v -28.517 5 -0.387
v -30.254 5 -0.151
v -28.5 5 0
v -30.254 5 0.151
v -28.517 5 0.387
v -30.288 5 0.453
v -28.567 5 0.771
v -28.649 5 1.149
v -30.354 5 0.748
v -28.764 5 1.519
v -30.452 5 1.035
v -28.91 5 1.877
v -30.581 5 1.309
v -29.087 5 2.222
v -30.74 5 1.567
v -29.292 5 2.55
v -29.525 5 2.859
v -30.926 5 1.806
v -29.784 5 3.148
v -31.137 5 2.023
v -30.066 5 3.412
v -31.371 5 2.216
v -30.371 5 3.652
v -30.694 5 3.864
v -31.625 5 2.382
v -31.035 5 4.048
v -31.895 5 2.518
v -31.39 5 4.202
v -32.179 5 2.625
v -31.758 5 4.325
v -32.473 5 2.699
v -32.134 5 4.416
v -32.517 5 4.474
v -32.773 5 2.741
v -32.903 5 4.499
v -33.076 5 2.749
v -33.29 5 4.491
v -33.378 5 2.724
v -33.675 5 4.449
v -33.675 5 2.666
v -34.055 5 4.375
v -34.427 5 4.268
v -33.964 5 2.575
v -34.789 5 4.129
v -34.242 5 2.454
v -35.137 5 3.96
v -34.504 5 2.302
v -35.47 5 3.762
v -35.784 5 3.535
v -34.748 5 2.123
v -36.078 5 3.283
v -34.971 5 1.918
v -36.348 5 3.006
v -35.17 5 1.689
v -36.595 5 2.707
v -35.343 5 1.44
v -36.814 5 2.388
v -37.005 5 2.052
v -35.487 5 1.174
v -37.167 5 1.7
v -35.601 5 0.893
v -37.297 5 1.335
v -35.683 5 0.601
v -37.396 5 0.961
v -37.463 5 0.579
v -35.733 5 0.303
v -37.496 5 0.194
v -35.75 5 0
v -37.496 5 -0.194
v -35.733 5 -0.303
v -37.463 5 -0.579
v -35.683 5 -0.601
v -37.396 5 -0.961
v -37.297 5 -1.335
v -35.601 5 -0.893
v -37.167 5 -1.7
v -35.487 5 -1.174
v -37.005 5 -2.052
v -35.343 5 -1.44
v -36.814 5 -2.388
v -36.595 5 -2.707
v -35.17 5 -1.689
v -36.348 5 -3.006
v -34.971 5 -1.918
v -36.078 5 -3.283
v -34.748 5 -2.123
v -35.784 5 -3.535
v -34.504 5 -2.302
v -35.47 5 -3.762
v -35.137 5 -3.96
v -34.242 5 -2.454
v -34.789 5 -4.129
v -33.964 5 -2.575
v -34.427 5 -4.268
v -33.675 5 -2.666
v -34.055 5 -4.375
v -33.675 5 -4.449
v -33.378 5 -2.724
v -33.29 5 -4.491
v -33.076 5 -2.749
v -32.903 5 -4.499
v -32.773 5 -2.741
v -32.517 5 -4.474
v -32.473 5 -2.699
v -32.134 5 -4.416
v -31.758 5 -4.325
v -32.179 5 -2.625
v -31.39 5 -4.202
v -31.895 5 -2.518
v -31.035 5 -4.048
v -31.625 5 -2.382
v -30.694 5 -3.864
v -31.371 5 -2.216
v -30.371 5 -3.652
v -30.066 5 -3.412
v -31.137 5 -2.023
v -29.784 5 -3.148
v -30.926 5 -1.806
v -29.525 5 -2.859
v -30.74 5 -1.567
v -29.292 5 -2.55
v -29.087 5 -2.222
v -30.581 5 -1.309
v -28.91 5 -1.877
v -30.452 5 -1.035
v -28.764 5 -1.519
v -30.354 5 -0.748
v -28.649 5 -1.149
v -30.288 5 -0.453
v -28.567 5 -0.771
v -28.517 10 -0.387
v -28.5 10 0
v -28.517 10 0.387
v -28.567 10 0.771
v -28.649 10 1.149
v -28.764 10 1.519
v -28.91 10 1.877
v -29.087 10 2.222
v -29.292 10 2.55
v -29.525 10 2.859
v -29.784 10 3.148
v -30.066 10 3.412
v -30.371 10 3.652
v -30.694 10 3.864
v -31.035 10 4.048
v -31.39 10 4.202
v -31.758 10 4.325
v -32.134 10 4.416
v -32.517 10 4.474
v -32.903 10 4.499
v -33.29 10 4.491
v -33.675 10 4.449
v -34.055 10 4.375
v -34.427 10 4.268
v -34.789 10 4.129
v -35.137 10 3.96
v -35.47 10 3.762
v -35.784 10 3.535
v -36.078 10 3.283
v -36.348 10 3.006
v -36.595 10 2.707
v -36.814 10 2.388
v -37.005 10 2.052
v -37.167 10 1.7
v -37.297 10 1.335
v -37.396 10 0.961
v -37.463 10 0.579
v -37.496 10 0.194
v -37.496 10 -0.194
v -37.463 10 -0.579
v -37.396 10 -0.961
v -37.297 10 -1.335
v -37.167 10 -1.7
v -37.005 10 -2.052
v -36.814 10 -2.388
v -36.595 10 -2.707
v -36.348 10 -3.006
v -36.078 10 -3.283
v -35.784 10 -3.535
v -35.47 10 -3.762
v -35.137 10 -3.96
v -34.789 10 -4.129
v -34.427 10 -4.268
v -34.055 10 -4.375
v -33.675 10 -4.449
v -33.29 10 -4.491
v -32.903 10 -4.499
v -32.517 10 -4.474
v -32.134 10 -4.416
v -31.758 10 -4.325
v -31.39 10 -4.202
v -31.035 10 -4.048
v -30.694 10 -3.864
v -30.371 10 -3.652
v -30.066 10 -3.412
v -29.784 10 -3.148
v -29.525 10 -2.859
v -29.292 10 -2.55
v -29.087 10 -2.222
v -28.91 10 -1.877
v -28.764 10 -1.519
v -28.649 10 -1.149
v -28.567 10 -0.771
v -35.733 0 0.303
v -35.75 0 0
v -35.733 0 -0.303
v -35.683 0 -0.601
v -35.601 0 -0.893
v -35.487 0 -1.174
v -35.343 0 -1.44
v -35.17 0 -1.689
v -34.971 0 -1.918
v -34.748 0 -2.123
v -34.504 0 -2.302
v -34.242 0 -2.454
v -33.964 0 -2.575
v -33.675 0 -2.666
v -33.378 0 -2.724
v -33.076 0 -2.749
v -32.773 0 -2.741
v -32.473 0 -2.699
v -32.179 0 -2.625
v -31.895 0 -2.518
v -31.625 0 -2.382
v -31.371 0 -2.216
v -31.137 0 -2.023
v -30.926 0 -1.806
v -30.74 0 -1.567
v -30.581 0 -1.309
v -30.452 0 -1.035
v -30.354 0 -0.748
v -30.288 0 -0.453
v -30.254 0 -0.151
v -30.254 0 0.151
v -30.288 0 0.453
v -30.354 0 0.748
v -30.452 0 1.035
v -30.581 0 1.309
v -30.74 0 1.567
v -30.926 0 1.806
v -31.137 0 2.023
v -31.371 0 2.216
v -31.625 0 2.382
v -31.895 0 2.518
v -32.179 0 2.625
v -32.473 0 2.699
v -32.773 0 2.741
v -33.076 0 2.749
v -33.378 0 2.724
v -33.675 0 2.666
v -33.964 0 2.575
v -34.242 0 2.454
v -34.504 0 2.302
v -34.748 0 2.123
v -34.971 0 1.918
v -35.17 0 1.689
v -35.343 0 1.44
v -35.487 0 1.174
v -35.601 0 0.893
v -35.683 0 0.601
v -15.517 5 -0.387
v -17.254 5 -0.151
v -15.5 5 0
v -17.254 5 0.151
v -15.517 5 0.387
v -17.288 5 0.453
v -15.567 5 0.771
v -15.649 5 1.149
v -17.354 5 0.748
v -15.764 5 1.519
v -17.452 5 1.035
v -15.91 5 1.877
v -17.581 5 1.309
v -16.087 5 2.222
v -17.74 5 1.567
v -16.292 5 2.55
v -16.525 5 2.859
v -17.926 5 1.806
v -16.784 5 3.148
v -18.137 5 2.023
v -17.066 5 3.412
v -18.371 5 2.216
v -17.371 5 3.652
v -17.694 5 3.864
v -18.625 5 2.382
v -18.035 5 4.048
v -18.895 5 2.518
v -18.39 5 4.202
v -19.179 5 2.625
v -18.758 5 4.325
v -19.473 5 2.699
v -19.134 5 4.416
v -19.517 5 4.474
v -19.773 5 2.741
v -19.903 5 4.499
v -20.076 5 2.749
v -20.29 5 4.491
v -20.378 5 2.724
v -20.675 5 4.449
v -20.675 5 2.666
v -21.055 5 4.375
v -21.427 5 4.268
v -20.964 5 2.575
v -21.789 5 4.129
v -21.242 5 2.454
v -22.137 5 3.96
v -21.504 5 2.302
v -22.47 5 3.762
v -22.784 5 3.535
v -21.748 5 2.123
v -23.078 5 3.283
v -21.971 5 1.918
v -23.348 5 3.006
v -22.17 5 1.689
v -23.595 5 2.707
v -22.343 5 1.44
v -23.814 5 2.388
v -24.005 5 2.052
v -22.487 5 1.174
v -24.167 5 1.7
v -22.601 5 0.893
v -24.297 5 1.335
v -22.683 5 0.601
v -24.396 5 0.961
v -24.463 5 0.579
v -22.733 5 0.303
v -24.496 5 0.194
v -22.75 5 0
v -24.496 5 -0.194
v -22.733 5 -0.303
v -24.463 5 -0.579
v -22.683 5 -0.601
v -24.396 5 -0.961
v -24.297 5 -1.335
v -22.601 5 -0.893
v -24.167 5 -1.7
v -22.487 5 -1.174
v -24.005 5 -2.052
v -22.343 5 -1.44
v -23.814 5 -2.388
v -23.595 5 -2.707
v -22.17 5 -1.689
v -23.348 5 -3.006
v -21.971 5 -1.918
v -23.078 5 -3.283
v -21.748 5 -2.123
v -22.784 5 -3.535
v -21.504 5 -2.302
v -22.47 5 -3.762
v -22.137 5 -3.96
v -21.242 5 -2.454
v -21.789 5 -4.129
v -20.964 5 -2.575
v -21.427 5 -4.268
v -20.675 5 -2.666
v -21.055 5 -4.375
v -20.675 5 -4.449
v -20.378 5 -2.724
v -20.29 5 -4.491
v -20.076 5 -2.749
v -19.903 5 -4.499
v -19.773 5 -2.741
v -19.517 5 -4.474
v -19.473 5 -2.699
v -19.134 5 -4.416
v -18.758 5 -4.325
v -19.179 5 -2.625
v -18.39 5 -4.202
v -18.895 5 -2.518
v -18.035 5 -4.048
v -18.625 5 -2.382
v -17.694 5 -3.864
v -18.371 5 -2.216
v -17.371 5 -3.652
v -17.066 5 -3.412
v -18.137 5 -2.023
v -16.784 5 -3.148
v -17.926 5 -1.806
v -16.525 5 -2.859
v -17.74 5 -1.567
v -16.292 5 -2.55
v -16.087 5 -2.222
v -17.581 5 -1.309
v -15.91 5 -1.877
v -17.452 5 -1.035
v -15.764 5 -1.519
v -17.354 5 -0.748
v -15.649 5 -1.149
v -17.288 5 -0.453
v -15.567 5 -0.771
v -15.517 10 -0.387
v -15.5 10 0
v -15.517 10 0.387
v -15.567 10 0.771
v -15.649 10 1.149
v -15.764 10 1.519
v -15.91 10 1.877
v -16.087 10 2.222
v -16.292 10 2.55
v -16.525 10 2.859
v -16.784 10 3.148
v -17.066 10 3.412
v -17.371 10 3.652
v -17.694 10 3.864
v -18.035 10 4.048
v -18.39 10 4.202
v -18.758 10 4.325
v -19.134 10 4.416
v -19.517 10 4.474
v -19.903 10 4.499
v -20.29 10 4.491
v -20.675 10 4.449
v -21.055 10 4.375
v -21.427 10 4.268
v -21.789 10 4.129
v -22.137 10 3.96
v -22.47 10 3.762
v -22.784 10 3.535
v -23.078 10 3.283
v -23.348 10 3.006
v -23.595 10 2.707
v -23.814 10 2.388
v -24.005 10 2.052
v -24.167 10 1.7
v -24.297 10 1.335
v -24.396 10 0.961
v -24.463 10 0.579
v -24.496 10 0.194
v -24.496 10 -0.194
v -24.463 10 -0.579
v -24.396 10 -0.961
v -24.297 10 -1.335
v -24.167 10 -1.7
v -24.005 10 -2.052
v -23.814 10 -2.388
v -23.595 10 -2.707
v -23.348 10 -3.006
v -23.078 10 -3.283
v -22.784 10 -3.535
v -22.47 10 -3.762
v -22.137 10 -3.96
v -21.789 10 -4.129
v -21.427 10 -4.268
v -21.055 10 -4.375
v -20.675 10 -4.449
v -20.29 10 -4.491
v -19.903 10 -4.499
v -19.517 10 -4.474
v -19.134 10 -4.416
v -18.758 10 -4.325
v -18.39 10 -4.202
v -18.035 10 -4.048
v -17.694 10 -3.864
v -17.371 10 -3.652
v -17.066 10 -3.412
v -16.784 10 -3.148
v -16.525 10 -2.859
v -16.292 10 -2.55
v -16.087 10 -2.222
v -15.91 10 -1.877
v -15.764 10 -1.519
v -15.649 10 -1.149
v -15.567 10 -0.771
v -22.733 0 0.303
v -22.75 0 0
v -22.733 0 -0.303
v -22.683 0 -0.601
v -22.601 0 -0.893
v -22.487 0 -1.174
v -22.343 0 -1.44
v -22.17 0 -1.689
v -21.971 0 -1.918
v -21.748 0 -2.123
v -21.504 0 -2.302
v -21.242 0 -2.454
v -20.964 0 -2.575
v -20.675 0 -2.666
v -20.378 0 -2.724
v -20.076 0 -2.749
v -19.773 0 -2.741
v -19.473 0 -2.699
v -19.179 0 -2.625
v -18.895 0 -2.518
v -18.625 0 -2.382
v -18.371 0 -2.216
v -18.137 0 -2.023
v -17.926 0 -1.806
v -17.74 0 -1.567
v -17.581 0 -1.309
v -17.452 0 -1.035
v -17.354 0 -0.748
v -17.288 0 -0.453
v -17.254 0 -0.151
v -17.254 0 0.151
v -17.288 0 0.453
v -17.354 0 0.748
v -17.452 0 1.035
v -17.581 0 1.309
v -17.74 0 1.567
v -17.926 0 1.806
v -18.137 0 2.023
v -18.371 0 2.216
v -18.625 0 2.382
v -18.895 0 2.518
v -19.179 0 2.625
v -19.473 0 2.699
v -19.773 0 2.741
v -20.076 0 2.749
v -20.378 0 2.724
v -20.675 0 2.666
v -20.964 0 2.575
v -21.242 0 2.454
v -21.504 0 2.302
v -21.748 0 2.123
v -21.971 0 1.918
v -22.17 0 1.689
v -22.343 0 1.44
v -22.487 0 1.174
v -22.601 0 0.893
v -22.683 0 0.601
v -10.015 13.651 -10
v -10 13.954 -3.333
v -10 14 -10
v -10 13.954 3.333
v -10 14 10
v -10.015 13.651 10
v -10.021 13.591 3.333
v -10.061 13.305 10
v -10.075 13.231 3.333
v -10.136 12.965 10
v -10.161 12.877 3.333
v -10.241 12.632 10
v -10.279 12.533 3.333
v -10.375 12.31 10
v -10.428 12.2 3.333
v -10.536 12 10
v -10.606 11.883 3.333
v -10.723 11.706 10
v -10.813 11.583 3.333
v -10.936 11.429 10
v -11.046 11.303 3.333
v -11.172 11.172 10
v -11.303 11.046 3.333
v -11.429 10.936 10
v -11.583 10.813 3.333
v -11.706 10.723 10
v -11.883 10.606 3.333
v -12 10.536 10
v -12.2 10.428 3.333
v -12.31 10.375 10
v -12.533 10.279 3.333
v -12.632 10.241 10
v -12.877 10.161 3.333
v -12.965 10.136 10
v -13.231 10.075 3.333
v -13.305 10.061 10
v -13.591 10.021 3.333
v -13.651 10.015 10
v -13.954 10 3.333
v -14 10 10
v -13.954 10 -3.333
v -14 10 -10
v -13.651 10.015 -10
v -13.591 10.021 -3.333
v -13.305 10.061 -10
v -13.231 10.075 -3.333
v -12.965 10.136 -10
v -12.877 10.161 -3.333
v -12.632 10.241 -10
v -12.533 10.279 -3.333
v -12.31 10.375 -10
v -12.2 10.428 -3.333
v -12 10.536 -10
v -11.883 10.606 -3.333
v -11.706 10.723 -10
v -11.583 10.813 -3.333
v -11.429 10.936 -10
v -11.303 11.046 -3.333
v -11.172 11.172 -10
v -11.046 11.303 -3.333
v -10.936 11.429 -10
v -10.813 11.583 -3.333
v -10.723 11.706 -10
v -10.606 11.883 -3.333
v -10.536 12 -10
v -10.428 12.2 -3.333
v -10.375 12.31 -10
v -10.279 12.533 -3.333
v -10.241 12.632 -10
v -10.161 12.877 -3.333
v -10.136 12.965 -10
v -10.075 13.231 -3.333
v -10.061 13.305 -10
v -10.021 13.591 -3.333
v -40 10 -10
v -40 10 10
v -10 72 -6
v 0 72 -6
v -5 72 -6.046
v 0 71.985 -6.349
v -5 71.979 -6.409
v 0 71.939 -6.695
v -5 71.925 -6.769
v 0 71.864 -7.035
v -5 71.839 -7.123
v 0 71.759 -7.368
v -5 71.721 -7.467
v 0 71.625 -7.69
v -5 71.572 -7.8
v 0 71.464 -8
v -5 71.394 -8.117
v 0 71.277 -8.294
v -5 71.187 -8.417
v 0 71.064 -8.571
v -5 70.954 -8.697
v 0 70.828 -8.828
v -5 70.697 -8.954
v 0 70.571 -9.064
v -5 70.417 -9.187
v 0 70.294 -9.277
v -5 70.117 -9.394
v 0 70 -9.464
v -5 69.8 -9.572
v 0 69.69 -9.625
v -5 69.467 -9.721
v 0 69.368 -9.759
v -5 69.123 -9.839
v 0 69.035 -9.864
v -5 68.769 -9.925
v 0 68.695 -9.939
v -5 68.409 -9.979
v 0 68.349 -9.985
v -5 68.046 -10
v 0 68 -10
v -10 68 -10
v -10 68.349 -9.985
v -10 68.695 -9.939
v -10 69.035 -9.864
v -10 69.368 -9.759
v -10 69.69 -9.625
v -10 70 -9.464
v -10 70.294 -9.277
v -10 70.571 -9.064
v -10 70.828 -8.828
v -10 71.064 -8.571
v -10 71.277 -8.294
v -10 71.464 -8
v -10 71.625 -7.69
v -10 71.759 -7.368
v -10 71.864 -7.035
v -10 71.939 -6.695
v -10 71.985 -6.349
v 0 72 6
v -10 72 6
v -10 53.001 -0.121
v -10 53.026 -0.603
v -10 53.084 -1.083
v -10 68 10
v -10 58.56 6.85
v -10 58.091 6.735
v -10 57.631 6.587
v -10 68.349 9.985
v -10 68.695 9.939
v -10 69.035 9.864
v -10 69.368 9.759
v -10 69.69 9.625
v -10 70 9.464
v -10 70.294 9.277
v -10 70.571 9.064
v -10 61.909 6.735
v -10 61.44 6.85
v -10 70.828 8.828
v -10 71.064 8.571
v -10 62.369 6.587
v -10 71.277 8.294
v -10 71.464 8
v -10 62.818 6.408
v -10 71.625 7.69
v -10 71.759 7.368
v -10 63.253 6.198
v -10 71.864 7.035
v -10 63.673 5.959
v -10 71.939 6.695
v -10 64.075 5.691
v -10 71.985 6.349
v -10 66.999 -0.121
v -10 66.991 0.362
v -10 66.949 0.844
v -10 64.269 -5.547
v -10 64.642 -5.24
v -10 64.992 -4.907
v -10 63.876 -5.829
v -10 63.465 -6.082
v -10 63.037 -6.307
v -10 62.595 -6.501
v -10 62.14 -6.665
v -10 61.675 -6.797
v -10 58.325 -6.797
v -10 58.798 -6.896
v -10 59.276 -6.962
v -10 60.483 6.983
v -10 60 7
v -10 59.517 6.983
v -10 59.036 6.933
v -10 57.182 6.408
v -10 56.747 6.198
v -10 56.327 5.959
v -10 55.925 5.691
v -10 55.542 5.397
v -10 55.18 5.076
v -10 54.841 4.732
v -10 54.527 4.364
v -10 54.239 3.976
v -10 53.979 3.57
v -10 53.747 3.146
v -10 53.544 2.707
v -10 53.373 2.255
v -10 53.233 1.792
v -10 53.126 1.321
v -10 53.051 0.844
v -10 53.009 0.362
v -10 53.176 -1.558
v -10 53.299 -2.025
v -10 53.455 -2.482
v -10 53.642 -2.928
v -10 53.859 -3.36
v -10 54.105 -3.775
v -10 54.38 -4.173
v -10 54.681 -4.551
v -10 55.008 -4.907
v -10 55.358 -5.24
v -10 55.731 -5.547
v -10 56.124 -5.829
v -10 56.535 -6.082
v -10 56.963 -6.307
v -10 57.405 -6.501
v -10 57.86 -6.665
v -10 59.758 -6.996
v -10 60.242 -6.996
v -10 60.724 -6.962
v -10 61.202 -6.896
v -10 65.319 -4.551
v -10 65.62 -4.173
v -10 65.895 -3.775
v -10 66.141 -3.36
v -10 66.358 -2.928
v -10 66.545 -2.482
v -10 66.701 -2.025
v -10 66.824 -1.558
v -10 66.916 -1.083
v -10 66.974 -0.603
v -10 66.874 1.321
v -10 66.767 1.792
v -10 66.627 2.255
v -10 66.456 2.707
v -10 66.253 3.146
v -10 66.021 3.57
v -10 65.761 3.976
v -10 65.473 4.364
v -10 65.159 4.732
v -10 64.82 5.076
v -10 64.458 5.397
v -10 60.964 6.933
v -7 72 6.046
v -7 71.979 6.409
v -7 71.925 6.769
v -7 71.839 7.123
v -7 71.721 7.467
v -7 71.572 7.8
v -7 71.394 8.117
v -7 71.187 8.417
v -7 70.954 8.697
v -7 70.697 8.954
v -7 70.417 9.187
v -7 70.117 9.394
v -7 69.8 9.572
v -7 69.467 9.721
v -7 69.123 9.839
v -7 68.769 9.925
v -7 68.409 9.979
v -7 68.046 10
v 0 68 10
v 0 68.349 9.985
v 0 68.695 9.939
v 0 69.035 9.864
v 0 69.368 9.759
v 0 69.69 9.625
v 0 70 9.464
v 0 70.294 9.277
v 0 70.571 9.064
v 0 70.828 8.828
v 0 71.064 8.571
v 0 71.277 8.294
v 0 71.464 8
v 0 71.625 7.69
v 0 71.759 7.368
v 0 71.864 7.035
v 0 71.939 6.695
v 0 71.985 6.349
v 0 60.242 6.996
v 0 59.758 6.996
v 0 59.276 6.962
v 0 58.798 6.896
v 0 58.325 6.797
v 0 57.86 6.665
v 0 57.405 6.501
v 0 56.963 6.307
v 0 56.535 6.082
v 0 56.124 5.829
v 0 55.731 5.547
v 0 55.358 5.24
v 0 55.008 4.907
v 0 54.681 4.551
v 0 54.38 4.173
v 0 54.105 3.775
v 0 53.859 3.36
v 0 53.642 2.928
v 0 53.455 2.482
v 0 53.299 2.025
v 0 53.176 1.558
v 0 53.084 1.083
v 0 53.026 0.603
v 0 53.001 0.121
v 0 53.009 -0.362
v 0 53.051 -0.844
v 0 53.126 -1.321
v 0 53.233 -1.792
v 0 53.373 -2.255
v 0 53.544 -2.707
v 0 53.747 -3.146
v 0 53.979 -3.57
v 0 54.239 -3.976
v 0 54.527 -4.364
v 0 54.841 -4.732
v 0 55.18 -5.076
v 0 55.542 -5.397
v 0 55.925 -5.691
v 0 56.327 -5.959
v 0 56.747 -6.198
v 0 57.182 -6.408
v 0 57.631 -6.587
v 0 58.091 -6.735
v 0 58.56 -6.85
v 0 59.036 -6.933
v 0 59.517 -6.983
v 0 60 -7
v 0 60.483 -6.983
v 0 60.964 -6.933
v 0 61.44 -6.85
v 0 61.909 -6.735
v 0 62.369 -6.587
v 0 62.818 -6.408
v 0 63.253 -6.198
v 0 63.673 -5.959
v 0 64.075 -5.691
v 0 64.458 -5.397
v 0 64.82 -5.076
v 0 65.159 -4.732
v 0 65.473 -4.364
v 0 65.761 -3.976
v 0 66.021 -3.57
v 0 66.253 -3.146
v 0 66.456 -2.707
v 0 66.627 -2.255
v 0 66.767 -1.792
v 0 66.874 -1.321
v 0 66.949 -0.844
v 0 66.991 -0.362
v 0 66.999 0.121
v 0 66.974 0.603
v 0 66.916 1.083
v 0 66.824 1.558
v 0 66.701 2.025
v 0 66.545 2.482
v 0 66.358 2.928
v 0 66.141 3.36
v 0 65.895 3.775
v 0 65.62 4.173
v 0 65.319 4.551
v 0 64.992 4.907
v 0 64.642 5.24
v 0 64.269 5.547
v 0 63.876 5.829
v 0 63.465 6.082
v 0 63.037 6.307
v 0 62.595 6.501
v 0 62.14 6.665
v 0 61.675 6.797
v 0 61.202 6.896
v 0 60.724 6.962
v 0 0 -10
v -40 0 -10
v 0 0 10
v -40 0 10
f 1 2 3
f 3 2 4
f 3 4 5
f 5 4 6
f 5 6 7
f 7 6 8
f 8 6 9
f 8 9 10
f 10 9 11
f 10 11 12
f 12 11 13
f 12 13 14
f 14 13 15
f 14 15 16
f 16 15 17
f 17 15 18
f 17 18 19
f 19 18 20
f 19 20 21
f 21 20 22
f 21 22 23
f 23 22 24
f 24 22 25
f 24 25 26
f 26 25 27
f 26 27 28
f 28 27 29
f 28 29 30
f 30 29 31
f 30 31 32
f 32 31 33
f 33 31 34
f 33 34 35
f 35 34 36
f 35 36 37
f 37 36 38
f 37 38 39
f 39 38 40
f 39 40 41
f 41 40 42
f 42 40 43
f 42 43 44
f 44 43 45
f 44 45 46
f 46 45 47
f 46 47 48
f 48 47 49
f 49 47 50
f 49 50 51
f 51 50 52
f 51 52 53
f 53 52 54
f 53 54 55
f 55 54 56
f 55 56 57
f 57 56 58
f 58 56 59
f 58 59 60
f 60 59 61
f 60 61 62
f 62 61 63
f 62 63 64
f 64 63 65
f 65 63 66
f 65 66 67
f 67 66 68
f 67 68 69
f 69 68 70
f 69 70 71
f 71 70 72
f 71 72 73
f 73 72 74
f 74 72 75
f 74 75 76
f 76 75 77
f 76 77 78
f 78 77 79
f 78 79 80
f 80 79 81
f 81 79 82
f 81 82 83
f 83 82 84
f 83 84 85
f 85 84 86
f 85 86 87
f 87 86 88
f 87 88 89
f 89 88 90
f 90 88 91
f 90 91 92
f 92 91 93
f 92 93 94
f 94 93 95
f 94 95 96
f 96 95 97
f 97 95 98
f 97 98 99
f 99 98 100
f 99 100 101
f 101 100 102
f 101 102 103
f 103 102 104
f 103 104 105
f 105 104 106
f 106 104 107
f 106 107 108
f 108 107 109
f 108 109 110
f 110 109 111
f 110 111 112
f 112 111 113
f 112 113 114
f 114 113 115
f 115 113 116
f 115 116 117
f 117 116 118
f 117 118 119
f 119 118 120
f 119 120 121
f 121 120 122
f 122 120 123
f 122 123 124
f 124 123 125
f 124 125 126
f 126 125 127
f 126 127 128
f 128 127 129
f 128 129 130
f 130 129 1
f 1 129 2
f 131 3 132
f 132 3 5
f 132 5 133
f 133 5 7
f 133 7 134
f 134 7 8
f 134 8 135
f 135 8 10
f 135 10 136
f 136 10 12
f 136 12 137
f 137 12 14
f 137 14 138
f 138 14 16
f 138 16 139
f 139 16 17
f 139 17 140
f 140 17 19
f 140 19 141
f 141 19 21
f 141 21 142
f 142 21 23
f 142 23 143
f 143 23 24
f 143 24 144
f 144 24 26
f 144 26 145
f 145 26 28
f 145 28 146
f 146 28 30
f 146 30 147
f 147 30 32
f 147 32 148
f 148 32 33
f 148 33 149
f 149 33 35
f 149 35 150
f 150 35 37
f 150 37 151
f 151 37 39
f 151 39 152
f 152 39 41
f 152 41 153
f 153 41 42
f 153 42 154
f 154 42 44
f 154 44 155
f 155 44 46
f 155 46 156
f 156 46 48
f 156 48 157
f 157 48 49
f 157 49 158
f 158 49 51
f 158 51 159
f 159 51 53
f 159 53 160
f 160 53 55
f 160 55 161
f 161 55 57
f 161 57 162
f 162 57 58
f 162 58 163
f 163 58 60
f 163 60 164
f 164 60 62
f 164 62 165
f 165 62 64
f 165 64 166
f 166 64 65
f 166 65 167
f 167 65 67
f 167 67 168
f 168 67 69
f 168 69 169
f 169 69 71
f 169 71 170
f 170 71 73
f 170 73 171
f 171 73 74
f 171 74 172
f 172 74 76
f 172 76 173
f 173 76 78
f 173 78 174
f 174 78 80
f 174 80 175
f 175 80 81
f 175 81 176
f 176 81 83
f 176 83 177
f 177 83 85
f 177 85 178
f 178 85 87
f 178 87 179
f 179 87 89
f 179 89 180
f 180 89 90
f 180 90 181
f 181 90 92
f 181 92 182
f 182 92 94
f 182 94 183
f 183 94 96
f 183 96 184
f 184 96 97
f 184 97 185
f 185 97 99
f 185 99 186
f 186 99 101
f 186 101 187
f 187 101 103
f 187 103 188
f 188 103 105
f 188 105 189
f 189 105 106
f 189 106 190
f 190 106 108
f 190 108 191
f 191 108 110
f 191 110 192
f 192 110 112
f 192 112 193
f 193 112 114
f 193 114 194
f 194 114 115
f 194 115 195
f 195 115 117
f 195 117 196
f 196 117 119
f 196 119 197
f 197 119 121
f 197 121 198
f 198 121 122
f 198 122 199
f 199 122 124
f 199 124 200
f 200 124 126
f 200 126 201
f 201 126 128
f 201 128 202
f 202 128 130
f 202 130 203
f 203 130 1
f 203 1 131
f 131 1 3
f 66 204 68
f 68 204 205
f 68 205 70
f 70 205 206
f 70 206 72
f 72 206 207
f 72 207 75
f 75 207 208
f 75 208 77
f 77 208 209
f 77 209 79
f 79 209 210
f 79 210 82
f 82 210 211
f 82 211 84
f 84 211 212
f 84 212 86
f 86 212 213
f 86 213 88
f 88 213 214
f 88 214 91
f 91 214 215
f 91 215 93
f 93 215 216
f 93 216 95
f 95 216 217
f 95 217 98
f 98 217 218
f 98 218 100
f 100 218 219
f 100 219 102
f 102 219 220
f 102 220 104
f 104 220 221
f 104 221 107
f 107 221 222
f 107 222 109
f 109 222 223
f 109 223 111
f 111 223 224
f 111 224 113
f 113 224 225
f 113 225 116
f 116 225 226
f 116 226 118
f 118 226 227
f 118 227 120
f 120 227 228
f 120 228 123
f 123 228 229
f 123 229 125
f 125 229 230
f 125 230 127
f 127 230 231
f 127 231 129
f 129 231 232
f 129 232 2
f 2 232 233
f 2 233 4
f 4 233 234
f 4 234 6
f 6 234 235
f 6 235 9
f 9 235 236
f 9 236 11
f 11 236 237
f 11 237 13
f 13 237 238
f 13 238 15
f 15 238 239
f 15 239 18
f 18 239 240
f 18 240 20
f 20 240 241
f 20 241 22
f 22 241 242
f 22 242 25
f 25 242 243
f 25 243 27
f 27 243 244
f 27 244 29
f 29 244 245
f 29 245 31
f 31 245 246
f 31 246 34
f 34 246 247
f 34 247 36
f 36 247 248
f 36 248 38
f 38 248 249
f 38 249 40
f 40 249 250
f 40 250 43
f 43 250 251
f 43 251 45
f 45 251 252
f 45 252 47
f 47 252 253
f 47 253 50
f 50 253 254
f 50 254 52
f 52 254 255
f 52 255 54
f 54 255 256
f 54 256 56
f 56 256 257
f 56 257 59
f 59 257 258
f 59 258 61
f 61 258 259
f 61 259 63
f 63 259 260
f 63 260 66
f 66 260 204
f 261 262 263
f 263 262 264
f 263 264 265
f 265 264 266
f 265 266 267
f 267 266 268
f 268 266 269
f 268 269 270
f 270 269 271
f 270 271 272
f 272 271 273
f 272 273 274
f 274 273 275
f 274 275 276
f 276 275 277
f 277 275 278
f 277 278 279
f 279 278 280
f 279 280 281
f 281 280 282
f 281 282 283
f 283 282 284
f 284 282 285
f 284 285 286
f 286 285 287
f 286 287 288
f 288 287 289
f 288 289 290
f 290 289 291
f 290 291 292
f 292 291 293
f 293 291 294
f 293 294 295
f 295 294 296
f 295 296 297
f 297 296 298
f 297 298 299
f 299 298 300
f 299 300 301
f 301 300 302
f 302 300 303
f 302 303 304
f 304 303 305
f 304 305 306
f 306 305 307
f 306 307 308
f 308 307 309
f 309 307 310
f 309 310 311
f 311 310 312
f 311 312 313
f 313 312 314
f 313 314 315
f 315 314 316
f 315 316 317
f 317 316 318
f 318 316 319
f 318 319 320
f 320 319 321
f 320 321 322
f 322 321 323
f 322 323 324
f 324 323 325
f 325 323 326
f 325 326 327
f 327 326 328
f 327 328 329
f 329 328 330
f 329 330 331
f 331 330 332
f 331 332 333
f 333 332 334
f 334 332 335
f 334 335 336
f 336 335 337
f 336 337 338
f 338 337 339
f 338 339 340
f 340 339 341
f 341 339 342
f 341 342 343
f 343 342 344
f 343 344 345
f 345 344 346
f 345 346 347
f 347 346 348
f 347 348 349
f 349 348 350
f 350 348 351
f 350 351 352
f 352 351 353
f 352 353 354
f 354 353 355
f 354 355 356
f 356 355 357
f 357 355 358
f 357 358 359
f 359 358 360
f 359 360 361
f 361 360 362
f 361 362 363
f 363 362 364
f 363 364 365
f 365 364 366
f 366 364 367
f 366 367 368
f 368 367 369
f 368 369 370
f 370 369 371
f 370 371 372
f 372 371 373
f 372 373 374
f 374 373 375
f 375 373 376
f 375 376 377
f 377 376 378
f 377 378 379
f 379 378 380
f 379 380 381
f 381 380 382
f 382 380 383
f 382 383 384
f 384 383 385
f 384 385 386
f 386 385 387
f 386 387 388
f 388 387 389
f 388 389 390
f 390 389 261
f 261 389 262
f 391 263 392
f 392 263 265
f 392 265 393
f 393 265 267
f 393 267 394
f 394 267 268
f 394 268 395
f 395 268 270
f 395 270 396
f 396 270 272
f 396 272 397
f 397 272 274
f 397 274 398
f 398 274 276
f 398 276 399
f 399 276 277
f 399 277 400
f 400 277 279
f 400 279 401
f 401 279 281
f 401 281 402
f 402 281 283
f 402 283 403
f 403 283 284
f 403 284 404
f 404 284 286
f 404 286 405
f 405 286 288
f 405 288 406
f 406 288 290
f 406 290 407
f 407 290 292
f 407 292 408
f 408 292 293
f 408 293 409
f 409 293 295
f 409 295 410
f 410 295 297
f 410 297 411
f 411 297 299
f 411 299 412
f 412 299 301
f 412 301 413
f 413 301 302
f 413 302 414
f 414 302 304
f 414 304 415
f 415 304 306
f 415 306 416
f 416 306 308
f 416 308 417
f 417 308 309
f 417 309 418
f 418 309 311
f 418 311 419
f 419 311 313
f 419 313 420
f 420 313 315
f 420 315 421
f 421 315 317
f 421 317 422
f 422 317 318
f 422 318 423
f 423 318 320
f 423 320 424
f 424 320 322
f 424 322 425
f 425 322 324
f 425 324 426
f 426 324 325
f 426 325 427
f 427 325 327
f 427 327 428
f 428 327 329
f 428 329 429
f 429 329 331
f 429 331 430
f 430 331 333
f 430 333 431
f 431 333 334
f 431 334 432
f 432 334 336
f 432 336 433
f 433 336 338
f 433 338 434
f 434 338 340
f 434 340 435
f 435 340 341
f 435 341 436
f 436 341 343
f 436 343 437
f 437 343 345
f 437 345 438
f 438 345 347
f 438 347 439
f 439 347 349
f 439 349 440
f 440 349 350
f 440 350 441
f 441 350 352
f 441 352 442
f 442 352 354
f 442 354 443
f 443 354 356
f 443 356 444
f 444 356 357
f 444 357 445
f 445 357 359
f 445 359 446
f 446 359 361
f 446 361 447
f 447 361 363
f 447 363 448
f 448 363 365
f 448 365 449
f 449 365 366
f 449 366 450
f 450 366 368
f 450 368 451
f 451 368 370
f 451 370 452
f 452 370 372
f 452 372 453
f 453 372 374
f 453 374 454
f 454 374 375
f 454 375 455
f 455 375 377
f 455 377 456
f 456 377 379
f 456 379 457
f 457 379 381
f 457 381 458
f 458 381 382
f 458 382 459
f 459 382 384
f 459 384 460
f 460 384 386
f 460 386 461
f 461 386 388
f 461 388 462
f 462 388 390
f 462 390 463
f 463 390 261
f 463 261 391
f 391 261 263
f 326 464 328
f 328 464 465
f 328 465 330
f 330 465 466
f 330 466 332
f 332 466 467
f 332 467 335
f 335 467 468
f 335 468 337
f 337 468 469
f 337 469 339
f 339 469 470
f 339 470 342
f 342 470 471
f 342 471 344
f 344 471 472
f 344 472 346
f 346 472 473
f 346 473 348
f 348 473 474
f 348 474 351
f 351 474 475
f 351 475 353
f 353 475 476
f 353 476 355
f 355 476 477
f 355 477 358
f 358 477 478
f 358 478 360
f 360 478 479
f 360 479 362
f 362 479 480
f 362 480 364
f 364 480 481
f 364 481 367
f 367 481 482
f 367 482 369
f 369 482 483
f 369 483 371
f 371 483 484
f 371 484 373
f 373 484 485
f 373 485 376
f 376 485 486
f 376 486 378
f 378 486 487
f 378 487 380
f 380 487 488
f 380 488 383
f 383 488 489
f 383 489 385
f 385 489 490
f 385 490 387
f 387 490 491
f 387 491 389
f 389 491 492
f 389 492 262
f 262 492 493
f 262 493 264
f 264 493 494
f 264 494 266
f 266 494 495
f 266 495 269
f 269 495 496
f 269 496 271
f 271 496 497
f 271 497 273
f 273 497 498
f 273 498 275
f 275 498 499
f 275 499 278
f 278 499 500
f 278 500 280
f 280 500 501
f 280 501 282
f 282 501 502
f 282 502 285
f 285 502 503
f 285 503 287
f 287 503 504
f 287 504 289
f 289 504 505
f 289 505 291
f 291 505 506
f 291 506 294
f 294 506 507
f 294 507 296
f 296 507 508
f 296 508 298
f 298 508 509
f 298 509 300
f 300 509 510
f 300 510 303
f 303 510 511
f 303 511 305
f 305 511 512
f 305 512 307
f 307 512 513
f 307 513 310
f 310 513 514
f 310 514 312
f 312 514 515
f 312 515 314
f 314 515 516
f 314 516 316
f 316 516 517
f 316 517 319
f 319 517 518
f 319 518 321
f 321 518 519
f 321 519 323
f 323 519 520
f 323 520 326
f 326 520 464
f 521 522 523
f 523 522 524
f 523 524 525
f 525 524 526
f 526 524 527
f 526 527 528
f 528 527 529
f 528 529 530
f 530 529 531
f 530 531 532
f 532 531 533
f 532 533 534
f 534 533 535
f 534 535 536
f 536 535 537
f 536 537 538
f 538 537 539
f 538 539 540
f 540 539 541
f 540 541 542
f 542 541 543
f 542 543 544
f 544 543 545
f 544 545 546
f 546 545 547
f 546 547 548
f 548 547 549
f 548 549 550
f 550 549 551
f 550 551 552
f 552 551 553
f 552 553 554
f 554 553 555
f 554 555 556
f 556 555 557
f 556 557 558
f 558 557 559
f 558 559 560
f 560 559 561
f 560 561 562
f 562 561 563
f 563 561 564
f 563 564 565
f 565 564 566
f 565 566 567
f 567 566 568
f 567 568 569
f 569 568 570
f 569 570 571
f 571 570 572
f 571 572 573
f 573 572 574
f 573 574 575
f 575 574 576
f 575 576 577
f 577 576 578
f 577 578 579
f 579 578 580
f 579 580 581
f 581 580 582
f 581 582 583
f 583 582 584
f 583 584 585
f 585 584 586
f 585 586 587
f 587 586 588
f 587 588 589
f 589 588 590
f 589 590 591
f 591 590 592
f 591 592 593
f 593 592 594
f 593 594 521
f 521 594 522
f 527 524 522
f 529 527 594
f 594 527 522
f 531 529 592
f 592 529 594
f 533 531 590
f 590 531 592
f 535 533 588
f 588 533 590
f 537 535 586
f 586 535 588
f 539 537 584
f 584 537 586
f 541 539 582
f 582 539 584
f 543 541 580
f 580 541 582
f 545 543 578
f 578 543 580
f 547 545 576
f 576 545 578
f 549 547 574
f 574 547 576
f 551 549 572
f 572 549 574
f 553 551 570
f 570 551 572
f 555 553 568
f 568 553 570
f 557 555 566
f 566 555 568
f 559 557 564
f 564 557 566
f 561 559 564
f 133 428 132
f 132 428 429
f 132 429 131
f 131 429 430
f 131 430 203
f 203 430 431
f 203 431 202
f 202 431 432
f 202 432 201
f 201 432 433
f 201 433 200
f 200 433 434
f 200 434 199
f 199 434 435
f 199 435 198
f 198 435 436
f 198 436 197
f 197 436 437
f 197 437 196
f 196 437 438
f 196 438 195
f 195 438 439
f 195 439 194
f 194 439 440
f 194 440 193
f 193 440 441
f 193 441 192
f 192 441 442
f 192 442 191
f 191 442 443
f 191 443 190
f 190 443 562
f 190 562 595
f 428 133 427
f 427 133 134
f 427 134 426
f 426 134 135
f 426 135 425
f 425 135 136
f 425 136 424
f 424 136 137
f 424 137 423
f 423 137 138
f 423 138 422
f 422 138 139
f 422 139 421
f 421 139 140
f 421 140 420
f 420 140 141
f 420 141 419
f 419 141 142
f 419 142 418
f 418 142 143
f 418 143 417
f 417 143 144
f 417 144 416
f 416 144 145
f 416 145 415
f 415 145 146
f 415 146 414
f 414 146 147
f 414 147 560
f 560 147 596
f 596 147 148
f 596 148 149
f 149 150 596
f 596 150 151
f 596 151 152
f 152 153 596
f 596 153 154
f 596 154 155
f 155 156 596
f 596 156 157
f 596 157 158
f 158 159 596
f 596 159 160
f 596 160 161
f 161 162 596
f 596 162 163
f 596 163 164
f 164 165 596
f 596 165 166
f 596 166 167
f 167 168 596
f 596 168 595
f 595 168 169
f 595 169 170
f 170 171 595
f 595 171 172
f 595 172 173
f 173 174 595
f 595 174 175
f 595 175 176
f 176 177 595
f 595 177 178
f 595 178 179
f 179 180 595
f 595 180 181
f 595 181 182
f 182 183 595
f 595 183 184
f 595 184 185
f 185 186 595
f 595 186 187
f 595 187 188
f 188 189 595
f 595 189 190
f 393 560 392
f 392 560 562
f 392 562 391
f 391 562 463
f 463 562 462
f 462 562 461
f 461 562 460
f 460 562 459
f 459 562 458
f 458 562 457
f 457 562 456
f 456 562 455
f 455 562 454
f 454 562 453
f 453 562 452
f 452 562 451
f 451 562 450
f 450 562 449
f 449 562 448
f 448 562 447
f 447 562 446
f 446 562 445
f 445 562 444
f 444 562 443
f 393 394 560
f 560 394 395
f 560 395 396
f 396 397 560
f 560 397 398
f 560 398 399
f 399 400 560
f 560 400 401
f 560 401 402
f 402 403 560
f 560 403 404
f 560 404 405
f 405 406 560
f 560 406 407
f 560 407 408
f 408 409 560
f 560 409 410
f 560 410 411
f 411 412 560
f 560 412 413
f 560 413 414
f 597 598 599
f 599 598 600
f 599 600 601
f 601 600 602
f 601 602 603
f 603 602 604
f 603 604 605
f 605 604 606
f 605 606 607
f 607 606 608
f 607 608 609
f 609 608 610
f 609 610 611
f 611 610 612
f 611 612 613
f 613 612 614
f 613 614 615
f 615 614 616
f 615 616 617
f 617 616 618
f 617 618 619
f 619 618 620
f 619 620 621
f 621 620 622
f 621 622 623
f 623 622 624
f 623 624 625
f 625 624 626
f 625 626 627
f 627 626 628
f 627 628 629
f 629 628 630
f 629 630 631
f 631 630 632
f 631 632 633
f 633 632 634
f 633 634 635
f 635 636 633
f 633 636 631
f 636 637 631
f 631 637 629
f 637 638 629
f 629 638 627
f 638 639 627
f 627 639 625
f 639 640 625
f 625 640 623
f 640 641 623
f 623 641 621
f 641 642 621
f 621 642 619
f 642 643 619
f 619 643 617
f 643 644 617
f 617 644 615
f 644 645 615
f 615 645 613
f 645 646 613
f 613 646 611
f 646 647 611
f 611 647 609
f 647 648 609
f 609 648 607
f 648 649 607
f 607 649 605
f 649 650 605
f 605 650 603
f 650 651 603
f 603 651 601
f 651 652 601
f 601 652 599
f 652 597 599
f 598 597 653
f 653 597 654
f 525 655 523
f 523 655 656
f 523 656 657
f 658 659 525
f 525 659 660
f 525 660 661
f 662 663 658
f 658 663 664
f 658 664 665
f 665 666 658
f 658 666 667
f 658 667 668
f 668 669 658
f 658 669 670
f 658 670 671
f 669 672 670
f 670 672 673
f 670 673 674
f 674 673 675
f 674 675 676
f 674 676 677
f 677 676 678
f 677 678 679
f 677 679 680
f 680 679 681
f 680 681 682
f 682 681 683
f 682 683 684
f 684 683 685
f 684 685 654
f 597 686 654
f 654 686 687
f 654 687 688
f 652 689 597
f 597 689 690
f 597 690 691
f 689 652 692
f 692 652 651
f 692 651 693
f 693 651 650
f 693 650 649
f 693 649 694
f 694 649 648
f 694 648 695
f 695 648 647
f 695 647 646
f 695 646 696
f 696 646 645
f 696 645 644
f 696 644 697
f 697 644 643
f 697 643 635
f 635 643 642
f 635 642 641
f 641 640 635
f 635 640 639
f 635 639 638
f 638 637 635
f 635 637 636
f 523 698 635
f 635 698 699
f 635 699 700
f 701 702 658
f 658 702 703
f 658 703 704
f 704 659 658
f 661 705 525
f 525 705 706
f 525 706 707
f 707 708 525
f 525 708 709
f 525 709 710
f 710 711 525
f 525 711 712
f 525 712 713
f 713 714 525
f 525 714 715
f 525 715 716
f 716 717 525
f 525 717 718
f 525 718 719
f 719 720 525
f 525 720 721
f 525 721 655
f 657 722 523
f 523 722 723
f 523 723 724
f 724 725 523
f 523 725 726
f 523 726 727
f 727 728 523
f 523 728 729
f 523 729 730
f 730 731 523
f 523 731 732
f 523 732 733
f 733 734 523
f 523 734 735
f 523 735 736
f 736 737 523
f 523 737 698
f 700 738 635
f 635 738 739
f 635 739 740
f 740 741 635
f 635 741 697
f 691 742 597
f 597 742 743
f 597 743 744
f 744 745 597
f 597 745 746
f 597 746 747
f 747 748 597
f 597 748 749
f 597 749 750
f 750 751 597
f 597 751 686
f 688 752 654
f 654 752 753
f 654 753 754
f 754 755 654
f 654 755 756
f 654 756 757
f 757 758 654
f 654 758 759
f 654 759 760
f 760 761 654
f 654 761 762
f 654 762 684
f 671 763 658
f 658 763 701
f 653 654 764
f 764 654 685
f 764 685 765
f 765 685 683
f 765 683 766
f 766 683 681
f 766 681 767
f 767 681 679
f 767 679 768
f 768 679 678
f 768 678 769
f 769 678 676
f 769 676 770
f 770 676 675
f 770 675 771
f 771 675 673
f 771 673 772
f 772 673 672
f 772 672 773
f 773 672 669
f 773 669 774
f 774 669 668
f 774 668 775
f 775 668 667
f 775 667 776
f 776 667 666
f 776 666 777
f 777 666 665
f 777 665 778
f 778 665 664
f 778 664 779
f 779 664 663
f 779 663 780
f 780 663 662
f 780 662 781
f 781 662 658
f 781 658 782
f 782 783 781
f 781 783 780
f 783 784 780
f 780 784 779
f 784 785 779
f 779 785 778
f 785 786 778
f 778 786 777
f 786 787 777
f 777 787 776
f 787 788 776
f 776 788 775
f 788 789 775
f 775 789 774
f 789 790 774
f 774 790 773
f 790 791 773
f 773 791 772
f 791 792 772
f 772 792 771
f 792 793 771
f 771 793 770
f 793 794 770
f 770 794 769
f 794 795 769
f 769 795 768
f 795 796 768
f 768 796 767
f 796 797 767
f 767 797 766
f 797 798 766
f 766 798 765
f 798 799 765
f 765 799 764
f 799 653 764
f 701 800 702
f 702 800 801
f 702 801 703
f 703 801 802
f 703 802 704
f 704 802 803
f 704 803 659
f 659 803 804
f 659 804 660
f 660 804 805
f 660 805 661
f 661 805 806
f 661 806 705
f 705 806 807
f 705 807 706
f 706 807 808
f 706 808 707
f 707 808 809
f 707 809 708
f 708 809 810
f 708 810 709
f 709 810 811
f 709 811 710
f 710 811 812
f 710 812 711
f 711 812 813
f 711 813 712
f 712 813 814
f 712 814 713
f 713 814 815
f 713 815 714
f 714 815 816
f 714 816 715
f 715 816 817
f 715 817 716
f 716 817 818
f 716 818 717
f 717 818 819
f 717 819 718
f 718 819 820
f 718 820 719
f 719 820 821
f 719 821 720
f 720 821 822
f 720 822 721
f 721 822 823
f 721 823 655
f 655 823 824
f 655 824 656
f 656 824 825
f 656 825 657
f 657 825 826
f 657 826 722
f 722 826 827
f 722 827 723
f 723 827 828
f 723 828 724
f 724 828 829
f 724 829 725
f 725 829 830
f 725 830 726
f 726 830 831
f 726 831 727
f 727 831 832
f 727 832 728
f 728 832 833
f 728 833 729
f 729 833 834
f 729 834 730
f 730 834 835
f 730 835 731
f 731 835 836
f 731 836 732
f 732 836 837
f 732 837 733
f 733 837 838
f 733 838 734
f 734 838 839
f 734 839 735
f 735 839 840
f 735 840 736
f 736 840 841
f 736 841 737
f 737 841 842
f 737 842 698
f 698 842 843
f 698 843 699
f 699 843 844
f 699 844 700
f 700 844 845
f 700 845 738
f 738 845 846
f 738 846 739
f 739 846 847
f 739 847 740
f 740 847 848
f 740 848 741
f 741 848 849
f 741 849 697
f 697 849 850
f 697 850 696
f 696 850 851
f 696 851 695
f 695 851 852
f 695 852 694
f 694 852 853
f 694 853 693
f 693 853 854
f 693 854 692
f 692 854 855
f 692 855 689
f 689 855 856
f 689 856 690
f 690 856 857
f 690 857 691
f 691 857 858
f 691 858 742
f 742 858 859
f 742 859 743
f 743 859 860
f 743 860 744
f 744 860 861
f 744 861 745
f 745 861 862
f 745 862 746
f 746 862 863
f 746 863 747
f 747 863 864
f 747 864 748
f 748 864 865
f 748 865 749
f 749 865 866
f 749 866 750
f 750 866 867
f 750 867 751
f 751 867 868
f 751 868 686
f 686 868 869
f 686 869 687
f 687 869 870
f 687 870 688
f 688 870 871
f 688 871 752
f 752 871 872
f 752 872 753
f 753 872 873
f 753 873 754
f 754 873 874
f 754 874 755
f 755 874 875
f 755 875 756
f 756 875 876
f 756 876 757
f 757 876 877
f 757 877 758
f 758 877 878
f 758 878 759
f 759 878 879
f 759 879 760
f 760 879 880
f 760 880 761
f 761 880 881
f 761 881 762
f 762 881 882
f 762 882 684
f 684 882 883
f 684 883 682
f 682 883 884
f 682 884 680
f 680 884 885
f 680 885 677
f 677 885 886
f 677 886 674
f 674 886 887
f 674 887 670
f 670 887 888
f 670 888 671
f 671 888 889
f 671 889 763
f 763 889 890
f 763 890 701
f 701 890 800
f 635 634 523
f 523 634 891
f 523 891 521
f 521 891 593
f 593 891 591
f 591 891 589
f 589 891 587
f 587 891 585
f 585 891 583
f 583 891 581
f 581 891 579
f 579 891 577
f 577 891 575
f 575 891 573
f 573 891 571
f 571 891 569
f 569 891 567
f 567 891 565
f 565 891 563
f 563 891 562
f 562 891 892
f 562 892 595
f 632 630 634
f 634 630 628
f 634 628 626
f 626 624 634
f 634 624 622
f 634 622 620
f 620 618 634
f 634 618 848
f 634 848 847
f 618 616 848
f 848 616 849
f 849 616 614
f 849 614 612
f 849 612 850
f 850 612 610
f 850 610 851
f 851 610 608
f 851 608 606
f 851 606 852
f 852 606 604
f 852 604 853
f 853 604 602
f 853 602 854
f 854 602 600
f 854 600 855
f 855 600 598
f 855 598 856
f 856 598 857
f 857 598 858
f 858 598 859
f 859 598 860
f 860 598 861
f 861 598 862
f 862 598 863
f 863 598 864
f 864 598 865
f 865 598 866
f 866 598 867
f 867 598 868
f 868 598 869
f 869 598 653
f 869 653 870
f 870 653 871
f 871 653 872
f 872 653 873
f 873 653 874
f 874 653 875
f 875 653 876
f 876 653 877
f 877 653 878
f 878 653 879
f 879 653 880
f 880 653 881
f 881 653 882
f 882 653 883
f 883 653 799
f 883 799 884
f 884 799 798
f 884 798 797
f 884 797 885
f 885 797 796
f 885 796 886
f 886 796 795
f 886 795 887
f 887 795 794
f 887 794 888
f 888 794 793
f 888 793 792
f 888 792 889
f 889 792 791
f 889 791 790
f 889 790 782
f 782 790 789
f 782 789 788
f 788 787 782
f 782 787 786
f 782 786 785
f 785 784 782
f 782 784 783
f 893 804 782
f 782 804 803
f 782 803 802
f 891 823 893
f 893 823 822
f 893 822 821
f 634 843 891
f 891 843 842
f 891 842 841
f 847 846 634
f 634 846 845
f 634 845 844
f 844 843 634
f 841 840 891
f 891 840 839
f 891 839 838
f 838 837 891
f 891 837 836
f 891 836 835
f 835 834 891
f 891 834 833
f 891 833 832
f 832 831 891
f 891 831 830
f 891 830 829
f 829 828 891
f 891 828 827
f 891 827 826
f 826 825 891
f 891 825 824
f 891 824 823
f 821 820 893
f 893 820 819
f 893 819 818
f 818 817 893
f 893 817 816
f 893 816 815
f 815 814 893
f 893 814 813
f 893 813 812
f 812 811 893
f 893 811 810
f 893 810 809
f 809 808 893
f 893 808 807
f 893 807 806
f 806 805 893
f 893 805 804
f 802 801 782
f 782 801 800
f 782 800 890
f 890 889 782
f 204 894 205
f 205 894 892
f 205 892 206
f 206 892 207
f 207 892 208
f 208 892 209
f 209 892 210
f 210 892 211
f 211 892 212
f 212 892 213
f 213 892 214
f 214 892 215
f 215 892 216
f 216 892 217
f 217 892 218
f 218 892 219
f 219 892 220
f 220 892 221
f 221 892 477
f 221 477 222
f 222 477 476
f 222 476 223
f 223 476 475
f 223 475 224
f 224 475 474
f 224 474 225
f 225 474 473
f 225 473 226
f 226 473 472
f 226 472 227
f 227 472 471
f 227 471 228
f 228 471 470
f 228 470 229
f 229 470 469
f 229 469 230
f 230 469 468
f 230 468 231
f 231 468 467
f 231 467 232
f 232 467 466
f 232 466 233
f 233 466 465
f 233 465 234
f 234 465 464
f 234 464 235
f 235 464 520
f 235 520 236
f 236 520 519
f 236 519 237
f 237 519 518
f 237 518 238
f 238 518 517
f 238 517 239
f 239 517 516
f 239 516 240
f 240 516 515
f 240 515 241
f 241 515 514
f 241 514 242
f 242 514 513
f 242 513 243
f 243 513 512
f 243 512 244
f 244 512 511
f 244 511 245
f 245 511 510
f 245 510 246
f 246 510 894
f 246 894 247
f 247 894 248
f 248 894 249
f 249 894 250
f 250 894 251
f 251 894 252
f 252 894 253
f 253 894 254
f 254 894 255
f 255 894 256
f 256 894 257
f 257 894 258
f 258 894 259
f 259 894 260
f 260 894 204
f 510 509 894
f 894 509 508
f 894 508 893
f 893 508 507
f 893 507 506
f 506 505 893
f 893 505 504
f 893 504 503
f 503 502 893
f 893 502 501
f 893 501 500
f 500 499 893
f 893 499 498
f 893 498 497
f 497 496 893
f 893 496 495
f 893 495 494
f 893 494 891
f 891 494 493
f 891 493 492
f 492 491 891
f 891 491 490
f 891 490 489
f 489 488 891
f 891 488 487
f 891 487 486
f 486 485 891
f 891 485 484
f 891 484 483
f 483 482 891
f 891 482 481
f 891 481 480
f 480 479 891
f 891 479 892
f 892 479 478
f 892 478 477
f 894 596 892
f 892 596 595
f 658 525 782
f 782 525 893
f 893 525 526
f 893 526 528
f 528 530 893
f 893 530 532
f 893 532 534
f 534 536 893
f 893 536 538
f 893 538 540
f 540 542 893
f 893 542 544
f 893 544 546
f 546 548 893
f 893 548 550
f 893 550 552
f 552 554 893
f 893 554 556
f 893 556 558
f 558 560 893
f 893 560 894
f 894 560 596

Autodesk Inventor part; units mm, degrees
ref_plane "YZ Plane" through (0, 0, 0) normal (1, 0, 0) x (0, 1, 0)
ref_plane "XZ Plane" through (0, 0, 0) normal (0, 1, 0) x (-1, 0, 0)
ref_plane "XY Plane" through (0, 0, 0) normal (0, 0, 1) x (1, 0, 0)
sketch "Sketch1" plane through (0, 0, 0) normal (0, 0, 1) x (1, 0, 0)
  line L0 (0, 72) -> (-10, 72)
  line L1 (-10, 72) -> (-10, 10)
  line L2 (-10, 10) -> (-40, 10)
  line L3 (-40, 10) -> (-40, 0)
  line L4 (-40, 0) -> (0, 0)
  line L5 (0, 0) -> (0, 72)
  dimension "d0" = 10
  dimension "d1" = 40
  dimension "d2" = 10
  dimension "d3" = 72
extrude "Extrusion1" add sketch "Sketch1" along normal mid plane 20
sketch "Sketch2" plane through (0, 0, 10) normal (1, 0, 0) x (0, 0, -1)
  circle A0 centre (10, 60) radius 7
  line L0 (20, 72) -> (0, 72) projected
  point P0 (10, 0)
  dimension "d6" = 0
  dimension "d7" = 12
  dimension "d8" = 14
extrude "Extrusion2" cut sketch "Sketch2" against normal up to surface (10 mm away)
fillet "Fillet1" radius 4 3 edges at (-5, 72, 10) (-5, 72, -10) (-10, 10, 0)
sketch "Sketch3" plane through (-40, 10, 10) normal (0, 1, 0) x (1, 0, 0)
  line L0 (26, 0) -> (0, 0) projected
  line L1 (0, 20) -> (26, 20) projected
  line L2 (0, 20) -> (0, 0) projected
  point P0 (40, 10)
  point P1 (7, 10)
  point P2 (20, 10)
  dimension "d19" = 20
  dimension "d20" = 10
  dimension "d21" = 0
  dimension "d22" = 7
  dimension "d23" = 13
hole "Hole1" at (-33, 10, 0) at (-20, 10, 0) direction (0, -1, 0) diameter 5.5 depth 10 counterbore diameter 9 counterbore depth 5
equation "\"d20\" = 0.5 * d19"
properties part number "induction_adapter" material "ABS Plastic"
